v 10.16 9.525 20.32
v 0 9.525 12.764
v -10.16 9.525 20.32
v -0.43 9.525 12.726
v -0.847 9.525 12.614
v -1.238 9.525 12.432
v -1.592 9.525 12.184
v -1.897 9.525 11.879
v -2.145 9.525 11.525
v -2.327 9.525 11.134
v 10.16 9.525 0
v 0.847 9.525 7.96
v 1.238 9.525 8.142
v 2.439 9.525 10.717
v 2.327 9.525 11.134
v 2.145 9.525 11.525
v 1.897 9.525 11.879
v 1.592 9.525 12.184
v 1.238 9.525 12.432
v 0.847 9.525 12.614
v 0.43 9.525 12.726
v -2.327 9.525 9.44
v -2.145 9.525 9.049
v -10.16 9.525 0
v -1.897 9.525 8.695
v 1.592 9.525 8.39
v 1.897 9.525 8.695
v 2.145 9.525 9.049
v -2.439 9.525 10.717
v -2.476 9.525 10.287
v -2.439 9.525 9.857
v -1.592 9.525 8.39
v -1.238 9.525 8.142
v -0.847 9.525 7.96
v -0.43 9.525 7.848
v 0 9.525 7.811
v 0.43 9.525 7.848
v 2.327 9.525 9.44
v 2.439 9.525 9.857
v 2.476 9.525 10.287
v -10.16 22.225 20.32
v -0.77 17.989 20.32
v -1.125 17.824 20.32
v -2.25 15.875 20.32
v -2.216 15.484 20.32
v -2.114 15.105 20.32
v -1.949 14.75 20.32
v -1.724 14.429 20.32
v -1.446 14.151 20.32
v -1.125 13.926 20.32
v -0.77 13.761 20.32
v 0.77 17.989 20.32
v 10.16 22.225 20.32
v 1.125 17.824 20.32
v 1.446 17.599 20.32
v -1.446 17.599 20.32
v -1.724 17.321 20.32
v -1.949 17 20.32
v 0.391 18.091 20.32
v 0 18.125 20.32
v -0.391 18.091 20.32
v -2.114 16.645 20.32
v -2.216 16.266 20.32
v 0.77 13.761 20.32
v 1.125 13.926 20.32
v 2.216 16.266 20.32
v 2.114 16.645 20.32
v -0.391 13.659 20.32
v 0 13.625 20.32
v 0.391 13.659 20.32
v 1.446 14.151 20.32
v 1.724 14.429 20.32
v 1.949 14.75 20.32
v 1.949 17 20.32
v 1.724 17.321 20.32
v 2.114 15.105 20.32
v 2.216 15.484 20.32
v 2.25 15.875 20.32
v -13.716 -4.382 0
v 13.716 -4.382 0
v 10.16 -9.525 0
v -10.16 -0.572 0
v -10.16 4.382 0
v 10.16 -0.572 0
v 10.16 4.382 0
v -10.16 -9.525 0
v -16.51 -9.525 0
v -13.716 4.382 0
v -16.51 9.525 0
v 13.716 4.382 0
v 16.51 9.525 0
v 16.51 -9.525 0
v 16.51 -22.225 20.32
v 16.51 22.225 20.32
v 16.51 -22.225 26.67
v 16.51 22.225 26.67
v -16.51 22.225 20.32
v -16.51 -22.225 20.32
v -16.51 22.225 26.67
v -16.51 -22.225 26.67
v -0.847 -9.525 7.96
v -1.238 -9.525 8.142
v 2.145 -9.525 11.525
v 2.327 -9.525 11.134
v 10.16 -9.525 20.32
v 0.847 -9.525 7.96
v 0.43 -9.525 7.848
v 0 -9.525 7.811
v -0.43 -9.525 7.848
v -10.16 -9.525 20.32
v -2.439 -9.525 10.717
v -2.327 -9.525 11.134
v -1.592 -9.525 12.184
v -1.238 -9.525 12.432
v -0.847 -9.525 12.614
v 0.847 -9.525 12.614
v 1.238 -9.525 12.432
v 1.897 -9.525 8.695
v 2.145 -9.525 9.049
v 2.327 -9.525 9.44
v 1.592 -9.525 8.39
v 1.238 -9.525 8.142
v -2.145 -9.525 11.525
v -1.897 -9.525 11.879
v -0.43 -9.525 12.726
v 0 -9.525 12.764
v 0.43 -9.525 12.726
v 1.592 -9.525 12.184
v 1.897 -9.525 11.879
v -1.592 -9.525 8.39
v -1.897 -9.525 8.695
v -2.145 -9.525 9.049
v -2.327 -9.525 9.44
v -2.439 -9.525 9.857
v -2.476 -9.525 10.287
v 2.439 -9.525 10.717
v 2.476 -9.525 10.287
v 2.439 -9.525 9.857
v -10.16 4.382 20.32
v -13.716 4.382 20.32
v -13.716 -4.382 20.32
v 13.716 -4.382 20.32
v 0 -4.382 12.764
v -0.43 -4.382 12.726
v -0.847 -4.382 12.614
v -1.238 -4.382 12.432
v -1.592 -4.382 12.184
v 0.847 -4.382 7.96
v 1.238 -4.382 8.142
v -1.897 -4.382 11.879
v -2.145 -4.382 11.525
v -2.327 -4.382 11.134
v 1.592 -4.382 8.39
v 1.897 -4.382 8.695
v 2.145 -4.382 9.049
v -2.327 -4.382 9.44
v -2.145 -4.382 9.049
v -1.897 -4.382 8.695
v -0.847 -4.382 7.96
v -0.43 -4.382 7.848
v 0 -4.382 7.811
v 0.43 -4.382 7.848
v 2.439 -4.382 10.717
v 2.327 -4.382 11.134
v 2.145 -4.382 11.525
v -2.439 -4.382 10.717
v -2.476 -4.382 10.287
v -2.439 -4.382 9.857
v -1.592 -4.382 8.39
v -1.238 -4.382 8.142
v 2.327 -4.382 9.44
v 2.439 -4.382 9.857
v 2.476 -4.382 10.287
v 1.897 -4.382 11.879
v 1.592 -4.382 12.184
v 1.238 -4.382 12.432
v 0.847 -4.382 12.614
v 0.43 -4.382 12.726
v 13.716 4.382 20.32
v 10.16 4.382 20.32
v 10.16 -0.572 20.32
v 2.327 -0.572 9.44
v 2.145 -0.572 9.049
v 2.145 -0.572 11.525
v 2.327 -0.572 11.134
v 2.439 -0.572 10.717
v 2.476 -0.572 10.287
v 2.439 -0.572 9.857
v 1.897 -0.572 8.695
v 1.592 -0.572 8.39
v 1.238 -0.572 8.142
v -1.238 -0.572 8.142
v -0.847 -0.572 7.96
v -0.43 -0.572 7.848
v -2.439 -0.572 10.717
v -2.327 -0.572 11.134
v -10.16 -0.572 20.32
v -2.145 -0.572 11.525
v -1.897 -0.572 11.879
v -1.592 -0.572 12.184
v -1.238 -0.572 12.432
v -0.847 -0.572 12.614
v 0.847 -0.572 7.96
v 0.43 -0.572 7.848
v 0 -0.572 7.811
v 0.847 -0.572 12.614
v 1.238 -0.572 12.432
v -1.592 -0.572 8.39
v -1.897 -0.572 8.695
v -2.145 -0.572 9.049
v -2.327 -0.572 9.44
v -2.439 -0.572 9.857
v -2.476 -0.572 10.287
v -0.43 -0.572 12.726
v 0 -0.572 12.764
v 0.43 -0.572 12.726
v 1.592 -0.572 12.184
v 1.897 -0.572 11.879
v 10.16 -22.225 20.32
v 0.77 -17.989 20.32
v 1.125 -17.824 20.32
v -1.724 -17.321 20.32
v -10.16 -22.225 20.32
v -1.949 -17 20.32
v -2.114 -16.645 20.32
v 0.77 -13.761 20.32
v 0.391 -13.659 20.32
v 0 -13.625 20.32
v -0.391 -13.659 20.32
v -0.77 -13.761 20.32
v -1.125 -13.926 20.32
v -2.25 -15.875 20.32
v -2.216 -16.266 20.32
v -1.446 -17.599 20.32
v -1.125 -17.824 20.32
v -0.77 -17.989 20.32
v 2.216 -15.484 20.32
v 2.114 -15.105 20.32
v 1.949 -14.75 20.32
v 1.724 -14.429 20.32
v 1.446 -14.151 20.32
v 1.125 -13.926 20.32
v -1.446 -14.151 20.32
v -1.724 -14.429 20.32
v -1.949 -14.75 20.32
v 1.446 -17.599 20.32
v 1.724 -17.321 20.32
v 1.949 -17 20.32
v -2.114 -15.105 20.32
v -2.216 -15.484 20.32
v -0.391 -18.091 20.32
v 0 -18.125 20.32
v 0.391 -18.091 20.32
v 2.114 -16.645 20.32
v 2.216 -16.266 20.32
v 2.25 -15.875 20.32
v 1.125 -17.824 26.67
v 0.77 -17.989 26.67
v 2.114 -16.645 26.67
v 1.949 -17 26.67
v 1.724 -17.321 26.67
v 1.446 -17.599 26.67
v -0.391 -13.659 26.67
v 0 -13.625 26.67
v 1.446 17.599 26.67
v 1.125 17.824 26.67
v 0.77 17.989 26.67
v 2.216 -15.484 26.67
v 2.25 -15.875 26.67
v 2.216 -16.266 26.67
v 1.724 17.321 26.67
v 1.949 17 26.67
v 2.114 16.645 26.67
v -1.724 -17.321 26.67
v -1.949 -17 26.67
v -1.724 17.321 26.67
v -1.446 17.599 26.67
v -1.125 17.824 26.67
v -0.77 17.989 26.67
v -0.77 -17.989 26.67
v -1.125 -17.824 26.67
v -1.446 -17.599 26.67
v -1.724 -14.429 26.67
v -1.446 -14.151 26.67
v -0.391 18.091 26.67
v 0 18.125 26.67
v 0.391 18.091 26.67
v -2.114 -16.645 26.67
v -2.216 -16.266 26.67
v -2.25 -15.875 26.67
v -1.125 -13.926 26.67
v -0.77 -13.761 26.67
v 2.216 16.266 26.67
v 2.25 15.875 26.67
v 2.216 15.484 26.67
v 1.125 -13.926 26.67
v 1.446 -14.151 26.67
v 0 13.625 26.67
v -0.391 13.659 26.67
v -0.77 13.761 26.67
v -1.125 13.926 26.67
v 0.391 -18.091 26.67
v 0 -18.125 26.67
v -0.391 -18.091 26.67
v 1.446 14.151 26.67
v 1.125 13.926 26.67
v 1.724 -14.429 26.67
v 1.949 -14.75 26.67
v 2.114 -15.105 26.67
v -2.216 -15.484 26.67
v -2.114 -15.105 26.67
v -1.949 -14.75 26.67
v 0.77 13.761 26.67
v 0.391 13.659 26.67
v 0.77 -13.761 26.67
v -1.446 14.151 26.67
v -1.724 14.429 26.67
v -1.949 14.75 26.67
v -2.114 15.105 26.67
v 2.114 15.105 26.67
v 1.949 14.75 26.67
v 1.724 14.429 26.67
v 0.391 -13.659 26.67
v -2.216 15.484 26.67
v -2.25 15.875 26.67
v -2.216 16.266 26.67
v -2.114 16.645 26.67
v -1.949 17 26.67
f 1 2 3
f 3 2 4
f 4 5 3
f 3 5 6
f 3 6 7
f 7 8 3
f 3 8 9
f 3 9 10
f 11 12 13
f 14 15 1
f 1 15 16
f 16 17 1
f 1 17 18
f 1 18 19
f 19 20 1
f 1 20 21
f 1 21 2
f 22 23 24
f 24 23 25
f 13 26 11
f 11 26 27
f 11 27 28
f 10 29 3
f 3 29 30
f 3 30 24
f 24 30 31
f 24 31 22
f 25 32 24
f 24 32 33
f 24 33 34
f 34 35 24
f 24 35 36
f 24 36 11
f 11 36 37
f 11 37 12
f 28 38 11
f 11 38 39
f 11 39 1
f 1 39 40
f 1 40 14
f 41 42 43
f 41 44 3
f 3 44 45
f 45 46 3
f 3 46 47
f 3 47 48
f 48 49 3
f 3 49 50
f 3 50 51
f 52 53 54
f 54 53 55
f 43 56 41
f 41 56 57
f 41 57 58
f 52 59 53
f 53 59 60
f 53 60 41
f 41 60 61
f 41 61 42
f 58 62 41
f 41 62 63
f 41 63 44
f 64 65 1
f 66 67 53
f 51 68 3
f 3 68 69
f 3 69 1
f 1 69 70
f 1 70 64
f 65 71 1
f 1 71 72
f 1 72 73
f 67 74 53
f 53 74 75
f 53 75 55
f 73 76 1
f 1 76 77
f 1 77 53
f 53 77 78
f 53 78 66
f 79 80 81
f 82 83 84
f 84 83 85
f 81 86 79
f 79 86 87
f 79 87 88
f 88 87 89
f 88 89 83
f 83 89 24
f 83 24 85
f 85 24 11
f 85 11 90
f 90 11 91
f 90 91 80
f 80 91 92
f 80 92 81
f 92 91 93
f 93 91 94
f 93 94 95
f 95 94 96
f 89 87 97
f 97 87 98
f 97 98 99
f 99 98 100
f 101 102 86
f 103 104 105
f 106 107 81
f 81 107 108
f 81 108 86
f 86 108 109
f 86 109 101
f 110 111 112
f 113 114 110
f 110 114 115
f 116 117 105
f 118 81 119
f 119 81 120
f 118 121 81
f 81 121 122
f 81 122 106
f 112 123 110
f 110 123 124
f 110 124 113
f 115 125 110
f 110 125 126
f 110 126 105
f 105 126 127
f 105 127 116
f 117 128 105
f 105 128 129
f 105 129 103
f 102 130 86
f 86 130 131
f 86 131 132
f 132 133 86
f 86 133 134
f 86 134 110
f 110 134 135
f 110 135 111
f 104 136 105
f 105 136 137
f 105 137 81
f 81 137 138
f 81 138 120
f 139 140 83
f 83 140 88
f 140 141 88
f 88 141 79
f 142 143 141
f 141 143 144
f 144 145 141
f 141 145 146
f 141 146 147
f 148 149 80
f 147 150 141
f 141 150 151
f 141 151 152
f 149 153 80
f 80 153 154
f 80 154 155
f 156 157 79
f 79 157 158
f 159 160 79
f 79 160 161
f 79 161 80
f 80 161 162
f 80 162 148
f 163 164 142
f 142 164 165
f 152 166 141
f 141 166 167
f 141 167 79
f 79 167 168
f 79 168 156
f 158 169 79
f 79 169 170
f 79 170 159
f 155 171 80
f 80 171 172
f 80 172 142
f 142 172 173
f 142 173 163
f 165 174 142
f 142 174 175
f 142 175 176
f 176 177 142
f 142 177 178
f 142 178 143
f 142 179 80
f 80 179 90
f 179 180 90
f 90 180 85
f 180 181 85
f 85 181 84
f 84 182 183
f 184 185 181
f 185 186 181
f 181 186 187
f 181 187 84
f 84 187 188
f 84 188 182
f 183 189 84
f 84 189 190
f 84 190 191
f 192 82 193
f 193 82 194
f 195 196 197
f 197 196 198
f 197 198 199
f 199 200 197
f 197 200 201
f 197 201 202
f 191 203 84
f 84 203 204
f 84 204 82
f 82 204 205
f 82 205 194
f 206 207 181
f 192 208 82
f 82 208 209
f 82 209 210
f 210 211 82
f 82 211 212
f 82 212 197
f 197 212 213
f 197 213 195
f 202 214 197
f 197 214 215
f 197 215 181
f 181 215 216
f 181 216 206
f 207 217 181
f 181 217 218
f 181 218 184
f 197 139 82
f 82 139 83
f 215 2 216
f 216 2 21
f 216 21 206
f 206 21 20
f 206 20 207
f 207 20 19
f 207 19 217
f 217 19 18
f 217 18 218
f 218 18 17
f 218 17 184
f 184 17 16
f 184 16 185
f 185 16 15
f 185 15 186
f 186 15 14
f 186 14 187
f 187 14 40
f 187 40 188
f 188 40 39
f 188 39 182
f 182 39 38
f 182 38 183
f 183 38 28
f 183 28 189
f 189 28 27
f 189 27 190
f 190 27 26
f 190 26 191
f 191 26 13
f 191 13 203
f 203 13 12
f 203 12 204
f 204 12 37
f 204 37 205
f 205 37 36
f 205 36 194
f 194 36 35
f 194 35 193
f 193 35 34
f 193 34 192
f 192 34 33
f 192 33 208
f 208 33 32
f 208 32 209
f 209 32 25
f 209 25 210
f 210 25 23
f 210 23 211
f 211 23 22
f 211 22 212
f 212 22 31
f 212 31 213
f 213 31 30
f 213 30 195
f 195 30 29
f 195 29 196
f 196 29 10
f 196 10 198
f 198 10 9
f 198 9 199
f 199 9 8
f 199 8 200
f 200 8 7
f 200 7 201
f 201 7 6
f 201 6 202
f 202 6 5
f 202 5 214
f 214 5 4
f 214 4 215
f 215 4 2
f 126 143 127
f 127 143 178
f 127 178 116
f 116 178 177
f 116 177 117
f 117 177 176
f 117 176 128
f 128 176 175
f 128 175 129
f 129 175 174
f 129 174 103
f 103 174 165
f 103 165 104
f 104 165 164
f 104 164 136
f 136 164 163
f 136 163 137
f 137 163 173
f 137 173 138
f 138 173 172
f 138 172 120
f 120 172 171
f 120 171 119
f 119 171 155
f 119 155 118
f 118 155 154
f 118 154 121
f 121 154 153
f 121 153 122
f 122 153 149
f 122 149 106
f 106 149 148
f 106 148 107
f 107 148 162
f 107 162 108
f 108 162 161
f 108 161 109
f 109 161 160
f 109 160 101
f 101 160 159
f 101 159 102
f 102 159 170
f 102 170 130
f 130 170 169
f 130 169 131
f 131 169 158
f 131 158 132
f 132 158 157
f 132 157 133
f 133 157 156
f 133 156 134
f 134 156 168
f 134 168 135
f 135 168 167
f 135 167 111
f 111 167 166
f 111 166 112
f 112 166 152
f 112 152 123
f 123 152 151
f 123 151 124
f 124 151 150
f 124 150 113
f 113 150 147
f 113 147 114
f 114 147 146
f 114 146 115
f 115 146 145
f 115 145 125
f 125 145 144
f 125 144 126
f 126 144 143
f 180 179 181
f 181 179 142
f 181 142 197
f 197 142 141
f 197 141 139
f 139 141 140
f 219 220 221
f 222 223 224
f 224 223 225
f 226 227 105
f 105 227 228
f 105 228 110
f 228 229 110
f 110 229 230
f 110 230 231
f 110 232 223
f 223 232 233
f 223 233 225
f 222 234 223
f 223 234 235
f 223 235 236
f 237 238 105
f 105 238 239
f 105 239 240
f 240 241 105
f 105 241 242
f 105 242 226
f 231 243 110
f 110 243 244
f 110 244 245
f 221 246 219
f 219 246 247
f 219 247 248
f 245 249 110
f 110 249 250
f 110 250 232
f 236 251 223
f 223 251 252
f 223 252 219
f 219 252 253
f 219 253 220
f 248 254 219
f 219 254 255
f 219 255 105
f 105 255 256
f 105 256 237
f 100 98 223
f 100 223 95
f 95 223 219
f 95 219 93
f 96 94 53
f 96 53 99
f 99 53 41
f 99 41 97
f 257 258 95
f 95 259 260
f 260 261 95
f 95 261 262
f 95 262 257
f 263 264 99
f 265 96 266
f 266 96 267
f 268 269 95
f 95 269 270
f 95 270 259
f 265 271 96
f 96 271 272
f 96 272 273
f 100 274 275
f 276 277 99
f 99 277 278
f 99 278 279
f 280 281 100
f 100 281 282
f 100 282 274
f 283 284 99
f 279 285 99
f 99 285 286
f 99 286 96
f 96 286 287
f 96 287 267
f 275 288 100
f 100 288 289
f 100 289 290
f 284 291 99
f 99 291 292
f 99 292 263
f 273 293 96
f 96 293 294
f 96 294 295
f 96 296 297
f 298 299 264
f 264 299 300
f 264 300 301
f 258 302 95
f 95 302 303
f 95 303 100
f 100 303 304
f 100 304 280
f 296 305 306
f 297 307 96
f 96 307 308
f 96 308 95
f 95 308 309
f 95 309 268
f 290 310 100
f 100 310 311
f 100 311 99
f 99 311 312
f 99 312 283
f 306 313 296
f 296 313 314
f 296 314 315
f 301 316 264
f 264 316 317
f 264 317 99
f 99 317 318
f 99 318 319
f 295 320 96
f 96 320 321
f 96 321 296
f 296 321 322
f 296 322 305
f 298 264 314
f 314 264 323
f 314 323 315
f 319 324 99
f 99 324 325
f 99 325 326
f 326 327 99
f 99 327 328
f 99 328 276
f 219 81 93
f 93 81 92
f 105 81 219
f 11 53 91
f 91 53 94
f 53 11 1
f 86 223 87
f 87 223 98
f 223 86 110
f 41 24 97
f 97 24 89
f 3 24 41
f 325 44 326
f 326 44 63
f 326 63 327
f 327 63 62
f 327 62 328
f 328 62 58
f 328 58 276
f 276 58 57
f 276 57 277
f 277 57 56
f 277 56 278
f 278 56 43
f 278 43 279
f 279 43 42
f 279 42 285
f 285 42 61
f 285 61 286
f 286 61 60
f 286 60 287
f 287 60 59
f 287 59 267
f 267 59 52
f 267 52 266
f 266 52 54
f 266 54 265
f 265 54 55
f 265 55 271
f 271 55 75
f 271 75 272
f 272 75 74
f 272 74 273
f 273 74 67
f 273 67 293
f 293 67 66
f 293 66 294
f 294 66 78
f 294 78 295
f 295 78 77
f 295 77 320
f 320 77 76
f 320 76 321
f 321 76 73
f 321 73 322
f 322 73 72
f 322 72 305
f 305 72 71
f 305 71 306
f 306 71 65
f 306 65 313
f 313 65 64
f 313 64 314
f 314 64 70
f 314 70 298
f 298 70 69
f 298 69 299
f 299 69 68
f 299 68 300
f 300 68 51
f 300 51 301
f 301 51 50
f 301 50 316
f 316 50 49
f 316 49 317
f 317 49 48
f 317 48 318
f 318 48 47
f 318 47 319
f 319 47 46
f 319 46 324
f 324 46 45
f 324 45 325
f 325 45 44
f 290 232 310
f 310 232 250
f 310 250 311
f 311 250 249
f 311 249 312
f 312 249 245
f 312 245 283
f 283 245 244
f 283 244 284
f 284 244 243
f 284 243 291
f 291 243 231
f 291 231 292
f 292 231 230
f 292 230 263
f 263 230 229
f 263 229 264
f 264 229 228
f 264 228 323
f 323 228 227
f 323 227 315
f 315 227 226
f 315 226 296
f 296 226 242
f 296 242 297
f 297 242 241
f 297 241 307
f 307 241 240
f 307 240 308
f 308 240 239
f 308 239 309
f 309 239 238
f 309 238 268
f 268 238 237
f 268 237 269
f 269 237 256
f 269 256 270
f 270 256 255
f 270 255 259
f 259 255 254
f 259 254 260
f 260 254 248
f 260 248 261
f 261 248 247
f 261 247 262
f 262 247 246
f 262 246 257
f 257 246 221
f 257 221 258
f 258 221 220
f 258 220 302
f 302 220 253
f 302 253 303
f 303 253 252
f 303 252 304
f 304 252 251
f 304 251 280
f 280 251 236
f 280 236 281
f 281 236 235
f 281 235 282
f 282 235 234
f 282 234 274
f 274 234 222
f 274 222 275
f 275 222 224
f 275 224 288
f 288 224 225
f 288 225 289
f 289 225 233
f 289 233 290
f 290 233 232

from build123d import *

# Parameters (mm, degrees)
ESQUISSE1_W             = 33.02
ESQUISSE1_H             = 19.05
BOSS_EXTRU_1_DEPTH      = 20.32
ESQUISSE2_R             = 2.4765
ENL_V_MAT_EXTRU_1_DEPTH = 33.378773911
ESQUISSE3_W             = 33.02
ESQUISSE3_H             = 44.45
BOSS_EXTRU_2_DEPTH      = 6.35
BOSS_EXTRU_3_DEPTH      = 6.35
ESQUISSE6_R             = 2.25
ENL_V_MAT_EXTRU_2_DEPTH = 35.342875899


with BuildPart() as part:
    # Esquisse1 → Boss.-Extru.1 (new body)
    with BuildSketch(Plane.XY):
        Rectangle(ESQUISSE1_W, ESQUISSE1_H)
        Polygon((-13.716, 4.3815), (-13.716, -4.3815), (13.716, -4.3815), (13.716, 4.3815), (10.16, 4.3815), (10.16, -0.5715), (-10.16, -0.5715), (-10.16, 4.3815), align=None, mode=Mode.SUBTRACT)
    extrude(amount=BOSS_EXTRU_1_DEPTH)

    # Esquisse2 → Enlèv. mat.-Extru.1 (cut, through all)
    with BuildSketch(Plane(origin=(0, 9.525, 0), x_dir=(1, 0, 0), z_dir=(0, 1, 0))):
        with Locations(Location((0, -10.287, 0), (0, 0, 270))):
            Circle(ESQUISSE2_R)
    extrude(amount=-ENL_V_MAT_EXTRU_1_DEPTH, mode=Mode.SUBTRACT)

    # Esquisse3 → Boss.-Extru.2 (add)
    with BuildSketch(Plane.XY.offset(20.32)):
        Rectangle(ESQUISSE3_W, ESQUISSE3_H)
    extrude(amount=BOSS_EXTRU_2_DEPTH)

    # Esquisse5 → Boss.-Extru.3 (add)
    with BuildSketch(Plane(origin=(16.51, 0, 0), x_dir=(0, 0, -1), z_dir=(1, 0, 0))):
        Polygon((-20.32, -22.225), (0, -9.525), (-20.32, -9.525), align=None)
        Polygon((-20.32, 22.225), (0, 9.525), (-20.32, 9.525), align=None)
    boss_extru_3 = extrude(amount=-BOSS_EXTRU_3_DEPTH)

    # Symétrie1: Boss.-Extru.3 across plane
    add(boss_extru_3.mirror(Plane(origin=(0, 0, 0), x_dir=(0, 0, 1), z_dir=(1, 0, 0))))

    # Esquisse6 → Enlèv. mat.-Extru.2 (cut, through all)
    with BuildSketch(Plane(origin=(0, 0, 20.32), x_dir=(-1, 0, 0), z_dir=(0, 0, -1))):
        with Locations((0, -15.875)):
            Circle(ESQUISSE6_R)
        with Locations(Location((0, 15.875, 0), (0, 0, 180))):
            Circle(ESQUISSE6_R)
    extrude(amount=-ENL_V_MAT_EXTRU_2_DEPTH, mode=Mode.SUBTRACT)


solid = part.part
